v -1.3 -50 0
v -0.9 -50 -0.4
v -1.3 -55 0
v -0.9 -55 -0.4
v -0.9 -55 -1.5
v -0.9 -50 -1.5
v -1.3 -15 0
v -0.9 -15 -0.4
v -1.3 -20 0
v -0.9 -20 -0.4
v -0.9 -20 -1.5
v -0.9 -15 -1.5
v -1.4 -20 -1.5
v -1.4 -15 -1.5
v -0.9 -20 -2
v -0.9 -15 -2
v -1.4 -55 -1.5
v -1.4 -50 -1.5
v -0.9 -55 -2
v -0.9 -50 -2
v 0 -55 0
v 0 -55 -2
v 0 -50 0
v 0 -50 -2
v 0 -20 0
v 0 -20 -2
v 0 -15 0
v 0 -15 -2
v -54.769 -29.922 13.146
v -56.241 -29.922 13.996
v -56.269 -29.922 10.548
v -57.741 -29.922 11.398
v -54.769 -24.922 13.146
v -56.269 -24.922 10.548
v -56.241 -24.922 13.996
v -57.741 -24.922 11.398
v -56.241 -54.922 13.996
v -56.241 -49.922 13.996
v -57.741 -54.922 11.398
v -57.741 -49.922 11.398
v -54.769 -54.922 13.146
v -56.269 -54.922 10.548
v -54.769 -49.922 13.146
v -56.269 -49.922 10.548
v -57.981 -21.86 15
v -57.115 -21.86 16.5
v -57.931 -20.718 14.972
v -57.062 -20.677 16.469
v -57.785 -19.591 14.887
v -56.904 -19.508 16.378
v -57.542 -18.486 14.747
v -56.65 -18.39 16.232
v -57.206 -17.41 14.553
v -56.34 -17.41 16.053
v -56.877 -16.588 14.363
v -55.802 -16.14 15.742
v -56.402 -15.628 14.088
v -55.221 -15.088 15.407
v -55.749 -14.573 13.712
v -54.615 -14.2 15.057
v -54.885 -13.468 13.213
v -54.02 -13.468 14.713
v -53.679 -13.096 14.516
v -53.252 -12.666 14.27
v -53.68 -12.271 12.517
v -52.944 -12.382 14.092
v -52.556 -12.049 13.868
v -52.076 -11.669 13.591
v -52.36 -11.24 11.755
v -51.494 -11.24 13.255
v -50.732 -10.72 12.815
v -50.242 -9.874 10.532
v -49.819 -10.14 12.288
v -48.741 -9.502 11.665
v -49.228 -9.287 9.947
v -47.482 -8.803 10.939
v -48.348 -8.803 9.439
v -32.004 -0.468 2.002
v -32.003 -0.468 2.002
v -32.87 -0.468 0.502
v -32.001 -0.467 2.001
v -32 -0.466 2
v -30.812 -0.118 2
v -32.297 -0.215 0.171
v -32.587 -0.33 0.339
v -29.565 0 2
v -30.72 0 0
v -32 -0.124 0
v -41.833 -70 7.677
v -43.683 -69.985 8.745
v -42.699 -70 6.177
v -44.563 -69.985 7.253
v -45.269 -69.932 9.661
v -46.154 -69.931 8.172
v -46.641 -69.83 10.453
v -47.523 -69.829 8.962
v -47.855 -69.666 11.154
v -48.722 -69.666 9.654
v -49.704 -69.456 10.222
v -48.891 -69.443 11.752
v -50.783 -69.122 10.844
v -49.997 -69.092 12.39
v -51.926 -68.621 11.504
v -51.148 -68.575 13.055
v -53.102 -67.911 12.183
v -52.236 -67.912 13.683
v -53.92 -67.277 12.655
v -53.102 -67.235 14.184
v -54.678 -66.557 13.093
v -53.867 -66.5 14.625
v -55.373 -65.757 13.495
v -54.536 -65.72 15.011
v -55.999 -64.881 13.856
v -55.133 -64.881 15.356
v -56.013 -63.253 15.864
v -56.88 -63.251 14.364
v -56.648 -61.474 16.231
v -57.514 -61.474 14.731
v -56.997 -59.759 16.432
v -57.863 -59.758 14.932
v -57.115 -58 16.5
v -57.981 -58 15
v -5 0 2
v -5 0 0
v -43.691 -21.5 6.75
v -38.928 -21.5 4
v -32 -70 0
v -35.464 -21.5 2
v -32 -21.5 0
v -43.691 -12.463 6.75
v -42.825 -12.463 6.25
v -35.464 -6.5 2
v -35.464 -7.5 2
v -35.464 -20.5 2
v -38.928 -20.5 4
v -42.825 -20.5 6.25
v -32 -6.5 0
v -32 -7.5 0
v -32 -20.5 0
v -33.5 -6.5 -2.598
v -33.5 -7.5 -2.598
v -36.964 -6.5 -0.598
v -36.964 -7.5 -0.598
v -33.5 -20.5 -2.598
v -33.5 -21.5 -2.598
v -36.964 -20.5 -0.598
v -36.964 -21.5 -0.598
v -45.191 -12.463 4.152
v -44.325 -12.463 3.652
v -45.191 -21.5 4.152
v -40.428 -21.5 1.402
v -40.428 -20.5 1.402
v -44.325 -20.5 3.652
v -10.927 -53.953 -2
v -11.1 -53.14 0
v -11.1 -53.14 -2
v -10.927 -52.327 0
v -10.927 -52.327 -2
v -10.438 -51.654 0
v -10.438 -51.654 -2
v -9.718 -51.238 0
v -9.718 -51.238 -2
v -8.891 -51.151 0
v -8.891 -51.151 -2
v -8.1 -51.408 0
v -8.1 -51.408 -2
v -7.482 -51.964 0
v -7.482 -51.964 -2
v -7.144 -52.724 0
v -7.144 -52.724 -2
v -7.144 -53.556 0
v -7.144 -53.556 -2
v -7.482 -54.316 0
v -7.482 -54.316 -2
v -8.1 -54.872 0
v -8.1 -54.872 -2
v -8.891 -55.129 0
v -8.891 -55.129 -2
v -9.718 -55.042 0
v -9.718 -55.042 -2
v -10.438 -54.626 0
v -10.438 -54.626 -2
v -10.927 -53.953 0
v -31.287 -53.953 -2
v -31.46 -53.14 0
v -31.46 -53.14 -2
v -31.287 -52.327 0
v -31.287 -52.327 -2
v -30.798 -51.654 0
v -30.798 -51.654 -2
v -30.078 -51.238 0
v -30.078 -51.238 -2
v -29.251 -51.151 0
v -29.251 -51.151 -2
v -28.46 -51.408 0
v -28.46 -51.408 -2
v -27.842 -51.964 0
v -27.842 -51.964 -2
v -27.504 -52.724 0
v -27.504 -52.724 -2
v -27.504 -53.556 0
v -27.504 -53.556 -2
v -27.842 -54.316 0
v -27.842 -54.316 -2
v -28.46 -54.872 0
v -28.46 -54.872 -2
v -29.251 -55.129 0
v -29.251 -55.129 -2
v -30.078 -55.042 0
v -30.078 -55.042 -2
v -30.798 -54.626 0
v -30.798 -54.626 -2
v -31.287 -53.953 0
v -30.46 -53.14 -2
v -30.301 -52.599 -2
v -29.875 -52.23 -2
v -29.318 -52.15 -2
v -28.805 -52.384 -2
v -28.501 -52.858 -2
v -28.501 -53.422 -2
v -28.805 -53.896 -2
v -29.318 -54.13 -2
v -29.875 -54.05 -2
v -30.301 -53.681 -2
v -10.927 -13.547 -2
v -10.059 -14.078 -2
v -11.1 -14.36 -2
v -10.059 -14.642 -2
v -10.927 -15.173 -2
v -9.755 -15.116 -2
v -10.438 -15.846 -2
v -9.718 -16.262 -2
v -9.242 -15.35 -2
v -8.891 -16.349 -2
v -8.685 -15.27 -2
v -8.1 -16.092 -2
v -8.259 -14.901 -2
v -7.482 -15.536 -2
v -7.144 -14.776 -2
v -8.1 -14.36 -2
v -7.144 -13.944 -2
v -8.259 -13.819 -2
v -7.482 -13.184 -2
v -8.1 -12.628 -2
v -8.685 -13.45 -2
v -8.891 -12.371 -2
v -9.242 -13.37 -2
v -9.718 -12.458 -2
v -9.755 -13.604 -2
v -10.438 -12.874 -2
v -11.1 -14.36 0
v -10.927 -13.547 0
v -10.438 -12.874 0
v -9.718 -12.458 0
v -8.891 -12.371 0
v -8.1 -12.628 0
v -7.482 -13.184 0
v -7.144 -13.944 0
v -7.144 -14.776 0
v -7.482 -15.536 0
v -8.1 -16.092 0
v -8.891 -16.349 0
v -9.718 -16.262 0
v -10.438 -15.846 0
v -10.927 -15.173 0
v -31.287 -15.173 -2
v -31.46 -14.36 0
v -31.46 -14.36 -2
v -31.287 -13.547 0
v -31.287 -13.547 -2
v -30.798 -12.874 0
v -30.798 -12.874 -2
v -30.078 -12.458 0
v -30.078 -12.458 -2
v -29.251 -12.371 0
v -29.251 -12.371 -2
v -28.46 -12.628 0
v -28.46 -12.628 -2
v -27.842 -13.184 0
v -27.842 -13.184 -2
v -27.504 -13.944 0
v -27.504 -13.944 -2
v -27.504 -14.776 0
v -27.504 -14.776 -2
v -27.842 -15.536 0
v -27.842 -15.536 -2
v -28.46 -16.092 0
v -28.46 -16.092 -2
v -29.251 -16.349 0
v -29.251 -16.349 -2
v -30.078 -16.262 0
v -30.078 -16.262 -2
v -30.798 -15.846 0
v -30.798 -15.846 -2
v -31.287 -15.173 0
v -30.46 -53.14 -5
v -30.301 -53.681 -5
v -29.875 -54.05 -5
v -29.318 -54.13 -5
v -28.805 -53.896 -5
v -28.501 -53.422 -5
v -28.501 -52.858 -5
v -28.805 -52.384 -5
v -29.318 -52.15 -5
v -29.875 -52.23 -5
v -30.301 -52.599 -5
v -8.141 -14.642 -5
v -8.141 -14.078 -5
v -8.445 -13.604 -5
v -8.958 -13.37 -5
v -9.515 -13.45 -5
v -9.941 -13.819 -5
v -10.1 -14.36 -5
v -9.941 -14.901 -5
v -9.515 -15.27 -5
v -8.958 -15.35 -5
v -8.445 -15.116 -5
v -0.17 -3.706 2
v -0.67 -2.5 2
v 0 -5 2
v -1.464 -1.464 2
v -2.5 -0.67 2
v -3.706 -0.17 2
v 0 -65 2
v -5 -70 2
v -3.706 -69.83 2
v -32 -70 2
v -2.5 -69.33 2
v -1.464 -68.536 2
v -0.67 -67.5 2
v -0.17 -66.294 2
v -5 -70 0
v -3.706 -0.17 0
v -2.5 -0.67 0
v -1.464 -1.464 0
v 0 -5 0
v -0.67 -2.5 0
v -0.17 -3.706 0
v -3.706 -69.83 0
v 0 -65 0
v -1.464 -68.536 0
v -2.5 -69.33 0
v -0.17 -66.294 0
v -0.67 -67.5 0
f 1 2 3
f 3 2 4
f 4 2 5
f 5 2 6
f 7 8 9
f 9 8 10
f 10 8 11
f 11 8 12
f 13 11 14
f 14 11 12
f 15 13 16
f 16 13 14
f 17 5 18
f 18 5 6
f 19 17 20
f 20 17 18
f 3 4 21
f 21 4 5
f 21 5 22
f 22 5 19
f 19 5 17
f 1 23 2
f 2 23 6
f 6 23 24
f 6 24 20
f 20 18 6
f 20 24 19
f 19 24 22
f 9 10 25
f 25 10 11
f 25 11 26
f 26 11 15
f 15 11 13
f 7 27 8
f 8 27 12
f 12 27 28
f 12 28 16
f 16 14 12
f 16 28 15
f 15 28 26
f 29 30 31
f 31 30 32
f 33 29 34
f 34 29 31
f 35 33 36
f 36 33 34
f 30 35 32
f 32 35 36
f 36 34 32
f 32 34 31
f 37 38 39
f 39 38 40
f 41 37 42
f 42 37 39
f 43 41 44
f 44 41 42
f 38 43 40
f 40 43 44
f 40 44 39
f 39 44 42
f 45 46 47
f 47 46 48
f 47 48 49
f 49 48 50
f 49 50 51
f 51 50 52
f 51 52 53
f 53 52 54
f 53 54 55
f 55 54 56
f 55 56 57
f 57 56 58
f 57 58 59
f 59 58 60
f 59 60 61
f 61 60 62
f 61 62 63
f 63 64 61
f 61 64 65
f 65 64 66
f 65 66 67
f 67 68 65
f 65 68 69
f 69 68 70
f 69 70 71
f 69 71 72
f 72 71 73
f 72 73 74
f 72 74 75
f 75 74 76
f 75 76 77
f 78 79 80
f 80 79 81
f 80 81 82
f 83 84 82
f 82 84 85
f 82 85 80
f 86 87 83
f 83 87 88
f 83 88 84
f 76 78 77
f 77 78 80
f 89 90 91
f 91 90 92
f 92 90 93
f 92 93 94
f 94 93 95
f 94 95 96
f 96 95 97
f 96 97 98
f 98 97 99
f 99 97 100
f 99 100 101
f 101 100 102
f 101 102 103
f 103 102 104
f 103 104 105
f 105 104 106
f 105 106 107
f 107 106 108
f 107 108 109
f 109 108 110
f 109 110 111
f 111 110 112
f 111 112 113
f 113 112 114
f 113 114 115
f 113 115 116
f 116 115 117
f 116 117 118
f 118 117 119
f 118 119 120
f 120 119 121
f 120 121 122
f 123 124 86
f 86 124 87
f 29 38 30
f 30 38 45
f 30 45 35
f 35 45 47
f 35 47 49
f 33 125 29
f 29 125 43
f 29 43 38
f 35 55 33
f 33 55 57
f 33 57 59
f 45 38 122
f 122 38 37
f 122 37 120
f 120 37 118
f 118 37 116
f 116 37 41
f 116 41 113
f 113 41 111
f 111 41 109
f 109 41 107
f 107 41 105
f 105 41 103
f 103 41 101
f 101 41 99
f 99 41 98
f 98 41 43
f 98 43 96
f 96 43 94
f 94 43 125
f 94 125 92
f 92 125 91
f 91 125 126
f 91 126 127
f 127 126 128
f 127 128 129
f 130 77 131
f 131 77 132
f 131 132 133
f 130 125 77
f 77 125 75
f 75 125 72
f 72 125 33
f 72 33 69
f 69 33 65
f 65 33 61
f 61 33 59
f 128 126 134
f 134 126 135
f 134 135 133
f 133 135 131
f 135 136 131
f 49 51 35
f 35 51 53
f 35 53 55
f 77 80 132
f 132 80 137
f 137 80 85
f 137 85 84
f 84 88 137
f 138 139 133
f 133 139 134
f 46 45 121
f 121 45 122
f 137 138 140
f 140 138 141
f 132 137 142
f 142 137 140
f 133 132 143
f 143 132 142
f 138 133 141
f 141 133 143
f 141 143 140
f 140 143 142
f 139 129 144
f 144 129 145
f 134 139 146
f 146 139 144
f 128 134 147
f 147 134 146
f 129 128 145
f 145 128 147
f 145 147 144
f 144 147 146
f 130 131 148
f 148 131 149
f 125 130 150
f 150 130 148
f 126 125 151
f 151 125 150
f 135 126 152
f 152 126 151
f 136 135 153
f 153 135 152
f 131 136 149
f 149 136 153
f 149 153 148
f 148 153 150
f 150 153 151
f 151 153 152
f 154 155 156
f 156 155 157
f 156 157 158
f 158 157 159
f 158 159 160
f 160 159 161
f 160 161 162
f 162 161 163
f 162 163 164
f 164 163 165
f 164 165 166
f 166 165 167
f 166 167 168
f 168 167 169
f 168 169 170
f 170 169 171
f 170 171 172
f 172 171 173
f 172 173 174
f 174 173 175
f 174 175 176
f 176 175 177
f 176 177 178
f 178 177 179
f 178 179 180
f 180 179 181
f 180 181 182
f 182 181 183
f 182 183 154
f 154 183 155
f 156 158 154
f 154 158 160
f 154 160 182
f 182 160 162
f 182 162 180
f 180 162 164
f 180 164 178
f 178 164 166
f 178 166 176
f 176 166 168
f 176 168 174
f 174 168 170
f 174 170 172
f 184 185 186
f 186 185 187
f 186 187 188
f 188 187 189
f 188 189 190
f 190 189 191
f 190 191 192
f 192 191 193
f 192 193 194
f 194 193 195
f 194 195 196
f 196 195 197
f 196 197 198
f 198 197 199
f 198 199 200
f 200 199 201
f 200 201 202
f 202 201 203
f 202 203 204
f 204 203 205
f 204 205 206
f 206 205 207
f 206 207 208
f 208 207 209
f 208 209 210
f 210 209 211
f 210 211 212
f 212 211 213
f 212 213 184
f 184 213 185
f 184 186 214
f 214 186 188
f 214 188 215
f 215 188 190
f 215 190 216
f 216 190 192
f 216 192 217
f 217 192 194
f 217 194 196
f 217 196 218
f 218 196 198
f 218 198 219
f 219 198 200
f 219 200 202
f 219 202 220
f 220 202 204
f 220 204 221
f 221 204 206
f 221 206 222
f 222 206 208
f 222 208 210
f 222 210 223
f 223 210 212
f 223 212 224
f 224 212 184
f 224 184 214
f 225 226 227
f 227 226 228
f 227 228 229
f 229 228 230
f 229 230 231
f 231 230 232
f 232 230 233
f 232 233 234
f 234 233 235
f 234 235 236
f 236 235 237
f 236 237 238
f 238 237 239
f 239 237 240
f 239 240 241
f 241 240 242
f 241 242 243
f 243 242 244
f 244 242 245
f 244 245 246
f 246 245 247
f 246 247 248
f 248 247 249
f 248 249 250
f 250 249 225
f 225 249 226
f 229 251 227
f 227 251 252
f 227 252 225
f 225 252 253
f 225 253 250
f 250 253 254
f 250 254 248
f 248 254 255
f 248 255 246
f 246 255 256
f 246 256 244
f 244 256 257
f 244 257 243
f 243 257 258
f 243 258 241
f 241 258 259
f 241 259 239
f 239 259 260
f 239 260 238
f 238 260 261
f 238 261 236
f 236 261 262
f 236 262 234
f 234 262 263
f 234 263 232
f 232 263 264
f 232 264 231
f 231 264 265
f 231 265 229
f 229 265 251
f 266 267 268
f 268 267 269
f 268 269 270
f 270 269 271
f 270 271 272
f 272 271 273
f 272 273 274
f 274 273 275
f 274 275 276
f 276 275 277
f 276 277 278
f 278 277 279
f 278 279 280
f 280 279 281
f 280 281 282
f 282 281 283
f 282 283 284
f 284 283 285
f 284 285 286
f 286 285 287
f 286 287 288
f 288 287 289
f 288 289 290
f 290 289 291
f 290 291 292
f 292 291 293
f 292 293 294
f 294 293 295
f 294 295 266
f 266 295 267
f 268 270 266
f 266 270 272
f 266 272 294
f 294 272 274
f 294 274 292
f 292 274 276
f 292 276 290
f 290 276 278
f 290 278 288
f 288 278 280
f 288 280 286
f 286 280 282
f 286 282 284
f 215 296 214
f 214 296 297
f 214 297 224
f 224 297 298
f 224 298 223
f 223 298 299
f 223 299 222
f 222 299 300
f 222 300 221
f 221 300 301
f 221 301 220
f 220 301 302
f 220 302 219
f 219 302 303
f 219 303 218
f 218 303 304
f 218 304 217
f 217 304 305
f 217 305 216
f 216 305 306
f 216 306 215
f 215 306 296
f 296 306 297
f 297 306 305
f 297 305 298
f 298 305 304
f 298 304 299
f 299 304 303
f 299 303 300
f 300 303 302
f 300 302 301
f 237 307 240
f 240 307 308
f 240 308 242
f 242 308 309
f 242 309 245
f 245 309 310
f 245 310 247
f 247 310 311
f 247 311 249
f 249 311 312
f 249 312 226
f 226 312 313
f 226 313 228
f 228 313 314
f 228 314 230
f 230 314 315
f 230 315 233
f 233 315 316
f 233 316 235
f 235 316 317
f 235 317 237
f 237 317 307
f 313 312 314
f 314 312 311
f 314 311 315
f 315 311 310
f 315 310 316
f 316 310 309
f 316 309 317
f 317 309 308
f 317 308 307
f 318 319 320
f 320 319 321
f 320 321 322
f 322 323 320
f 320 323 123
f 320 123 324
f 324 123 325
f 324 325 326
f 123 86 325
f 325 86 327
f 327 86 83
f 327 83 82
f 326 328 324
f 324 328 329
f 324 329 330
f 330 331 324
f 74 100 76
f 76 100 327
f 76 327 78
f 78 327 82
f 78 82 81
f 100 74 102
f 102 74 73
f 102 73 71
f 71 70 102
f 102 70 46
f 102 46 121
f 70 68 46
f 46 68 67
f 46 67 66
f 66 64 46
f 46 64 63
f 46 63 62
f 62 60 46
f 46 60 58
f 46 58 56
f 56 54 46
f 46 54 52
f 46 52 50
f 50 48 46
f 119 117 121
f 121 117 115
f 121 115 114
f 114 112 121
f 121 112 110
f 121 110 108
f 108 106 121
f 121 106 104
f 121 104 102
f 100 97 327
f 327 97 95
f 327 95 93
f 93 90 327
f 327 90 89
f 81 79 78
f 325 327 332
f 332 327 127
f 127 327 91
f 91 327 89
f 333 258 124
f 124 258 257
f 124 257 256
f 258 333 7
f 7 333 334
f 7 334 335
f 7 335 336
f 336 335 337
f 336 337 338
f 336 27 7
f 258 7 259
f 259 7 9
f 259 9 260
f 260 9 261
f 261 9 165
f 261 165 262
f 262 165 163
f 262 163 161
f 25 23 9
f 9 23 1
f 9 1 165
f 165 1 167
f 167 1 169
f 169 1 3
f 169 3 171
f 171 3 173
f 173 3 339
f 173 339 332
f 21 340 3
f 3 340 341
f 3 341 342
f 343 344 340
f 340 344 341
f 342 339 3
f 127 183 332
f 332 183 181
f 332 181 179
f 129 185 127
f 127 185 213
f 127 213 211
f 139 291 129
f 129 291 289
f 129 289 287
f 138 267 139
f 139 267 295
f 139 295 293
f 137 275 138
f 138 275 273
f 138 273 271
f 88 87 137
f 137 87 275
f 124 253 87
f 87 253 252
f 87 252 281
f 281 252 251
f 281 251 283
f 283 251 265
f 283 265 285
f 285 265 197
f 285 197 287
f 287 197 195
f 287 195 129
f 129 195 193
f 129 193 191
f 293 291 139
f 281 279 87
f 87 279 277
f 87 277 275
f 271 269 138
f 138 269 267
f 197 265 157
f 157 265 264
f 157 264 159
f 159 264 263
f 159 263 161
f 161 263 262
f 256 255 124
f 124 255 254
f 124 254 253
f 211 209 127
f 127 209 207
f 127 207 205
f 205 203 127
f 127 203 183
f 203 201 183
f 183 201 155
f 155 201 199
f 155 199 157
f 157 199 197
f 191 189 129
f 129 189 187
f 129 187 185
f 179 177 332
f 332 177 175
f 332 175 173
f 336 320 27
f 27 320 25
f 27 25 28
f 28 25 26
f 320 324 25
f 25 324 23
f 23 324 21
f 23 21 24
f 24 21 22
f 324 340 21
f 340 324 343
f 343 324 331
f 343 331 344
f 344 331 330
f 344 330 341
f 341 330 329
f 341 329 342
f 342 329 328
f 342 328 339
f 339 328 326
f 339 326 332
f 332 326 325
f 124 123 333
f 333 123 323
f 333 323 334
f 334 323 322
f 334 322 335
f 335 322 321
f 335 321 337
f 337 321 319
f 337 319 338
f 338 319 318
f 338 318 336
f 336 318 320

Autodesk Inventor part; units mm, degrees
ref_plane "YZ Plane" through (0, 0, 0) normal (1, 0, 0) x (0, 1, 0)
ref_plane "XZ Plane" through (0, 0, 0) normal (0, 1, 0) x (-1, 0, 0)
ref_plane "XY Plane" through (0, 0, 0) normal (0, 0, 1) x (1, 0, 0)
sketch "スケッチ1" plane through (0, 0, 0) normal (0, 0, 1) x (1, 0, 0)
  line L0 (0, 0) -> (-32, 0)
  line L1 (-32, 0) -> (-32, -70)
  line L2 (-32, -70) -> (0, -70)
  line L3 (0, -70) -> (0, 0)
  dimension "d0" = 32
  dimension "d1" = 70
extrude "押し出し1" add sketch "スケッチ1" along normal blind 2
sketch "スケッチ2" plane through (-32, -70, 0) normal (0, -1, 0) x (1, 0, 0)
  line L0 (0, 0) -> (32, 0) projected
  line L1 (32, 0) -> (32, 2) projected
  line L2 (0, 2) -> (32, 2) projected
  line L3 (0, 0) -> (0, 2) projected
  line L4 (0, 0) -> (-25.9808, 15)
  line L5 (-25.9808, 15) -> (-25.1147, 16.5)
  line L6 (-25.1147, 16.5) -> (0, 2)
  point P0 (32, 0)
  dimension "d4" = 30
  dimension "d5" = 150
extrude "押し出し2" add sketch "スケッチ2" against normal blind 70 contours L4 L5 L6 L3
sketch "スケッチ3" plane through (0, 0, 0) normal (0, 0, -1) x (-1, 0, 0)
  line L0 (0, 0) -> (32, 0) projected
  line L1 (32, 0) -> (57.9808, -12.115)
  line L2 (32, 0) -> (57.9808, 0) projected
  line L3 (57.9808, -70) -> (57.9808, 0) projected
  dimension "d8" = 25
extrude "押し出し3" cut sketch "スケッチ3" against normal blind 70
sketch "スケッチ4" plane through (0, 0, 0) normal (0, 0, -1) x (-1, 0, 0)
  circle A0 centre (9.1, -14.36) radius 1.15 projected
  circle A1 centre (29.46, -53.14) radius 1.15 projected
  circle A2 centre (9.1, -14.36) radius 1
  circle A3 centre (29.46, -53.14) radius 1
  point P0 (0, 0)
  dimension "d11" = 2
  dimension "d12" = 2
extrude "押し出し4" add sketch "スケッチ4" along normal blind 5 contours A2 | A3
sketch "スケッチ5" plane through (0, 0, 0) normal (0, 0, -1) x (-1, 0, 0)
  circle A0 centre (9.1, -14.36) radius 1 projected
  circle A1 centre (29.46, -53.14) radius 1 projected
  circle A2 centre (9.1, -14.36) radius 2
  circle A3 centre (29.46, -53.14) radius 2
  line L0 (9.1, -14.36) -> (29.46, -14.36)
  line L1 (29.46, -14.36) -> (29.46, -53.14)
  line L2 (29.46, -53.14) -> (9.1, -53.14)
  line L3 (9.1, -53.14) -> (9.1, -14.36)
  circle A4 centre (29.46, -14.36) radius 2
  circle A5 centre (9.1, -53.14) radius 2
  point P0 (0, 0)
  dimension "d15" = 4
  dimension "d16" = 4
  dimension "d17" = 4
  dimension "d18" = 4
extrude "押し出し5" add sketch "スケッチ5" along normal blind 2 contours L0 L3 A0 | L0 A2 L3 A0 | A0 L3 L0 | A0 L3 A2 L0 | A4 L1 L0 | L0 L1 A4 | A5 L2 L3 | L3 L2 A5 | L1 A1 L2 A3 | A3 L2 A1 L1
sketch "スケッチ6" plane through (-32, -70, 0) normal (-0.5, 0, -0.866) x (-0.866, 0, 0.5)
  circle A0 centre (6, 56) radius 4 projected
  line L0 (12, 62) -> (0, 62) projected
  line L1 (0, 62) -> (0, 50) projected
  line L2 (0, 50) -> (12, 50) projected
  line L3 (12, 50) -> (12, 62) projected
  line L4 (12.5, 62.5) -> (-0.5, 62.5)
  line L5 (-0.5, 62.5) -> (-0.5, 49.5)
  line L6 (-0.5, 49.5) -> (12.5, 49.5)
  line L7 (12.5, 49.5) -> (12.5, 62.5)
  line L8 (13.5, 63.5) -> (-1.5, 63.5)
  line L9 (-1.5, 63.5) -> (-1.5, 48.5)
  line L10 (-1.5, 48.5) -> (13.5, 48.5)
  line L11 (13.5, 48.5) -> (13.5, 63.5)
  line L12 (4, 48.5) -> (8, 48.5)
  line L13 (8, 48.5) -> (8, 49.5)
  line L14 (8, 49.5) -> (4, 49.5)
  line L15 (4, 49.5) -> (4, 48.5)
  line L16 (4, 62.5) -> (8, 62.5)
  line L17 (8, 62.5) -> (8, 63.5)
  line L18 (8, 63.5) -> (4, 63.5)
  line L19 (4, 63.5) -> (4, 62.5)
  line L20 (6, 48.5) -> (6, 63.5)
  line L21 (0, 70) -> (0, 0) projected
  line L22 (0, 48.5) -> (0, 63.5)
  line L23 (12.5, 57.5369) -> (13.5, 57.5369)
  point P0 (-27.7128, 70)
  point P1 (0, 62.5)
  point P2 (0, 49.5)
  point P3 (4, 49.5)
  dimension "d21" = 0.5
  dimension "d22" = 1
  dimension "d23" = 4
  dimension "d24" = 7.5
  dimension "d25" = 2
extrude "押し出し6" add sketch "スケッチ6" along normal blind 3 contours L21 L8 L19 L4 | L6 L15 L10 L21 | L6 L7 L23 L11 L10 L13
sketch "スケッチ9" plane through (-57.9808, -70, 15) normal (-0.5, 0, -0.866) x (-0.866, 0, 0.5)
  line L0 (-57.7128, 70) -> (-30, 70) projected
  spline S0 degree 3 poles (-17.6456, 0) (-14.5389, 0) (-12.4319, 0.0723) (-9.2674, 0.5484) (-7.4551, 0.9854) (-4.3314, 2.8768) (-3.1964, 3.9013) (-1.5196, 6.1498) (-0.9279, 7.3003) (-0.1818, 9.6493) (0, 10.8209) (0, 12) knots 0 0 0 0 0.932002 0.932002 1.694801 1.694801 2.239825 2.239825 2.701159 2.701159 3.124298 3.124298 3.124298 3.124298 projected
  spline S1 degree 3 poles (0, 48.1402) (0, 49.6683) (-0.3054, 51.1785) (-1.3061, 53.5747) (-2.0656, 55.0439) (-4.46, 57.4051) (-5.4298, 58.109) (-8.0471, 59.7175) (-9.9104, 60.6321) (-11.1228, 61.1974) knots 0 0 0 0 0.458444 0.458444 0.77844 0.77844 0.966355 0.966355 1.242442 1.242442 1.242442 1.242442 projected
  line L1 (-11.1228, 61.1974) -> (-28.9954, 69.5315) projected
  line L2 (-11.1228, 61.1974) -> (-28.9954, 69.5315) projected
  arc A0 (-28.9954, 69.5315) -> (-31.1085, 70) centre (-31.1085, 65) ccw projected
  line L3 (0, 57.885) -> (-30, 70) projected
  line L4 (0, 0) -> (0, 57.885) projected
  line L5 (0, 0) -> (-30, 0) projected
  line L6 (0, 57.885) -> (0, 70)
  line L7 (0, 70) -> (-31.1085, 70)
  point P0 (-53.3827, 70)
  point P1 (-30, 70)
extrude "押し出し9" cut sketch "スケッチ9" against normal blind 70
sketch "スケッチ10" plane through (-32, -70, 0) normal (-0.5, 0, -0.866) x (-0.866, 0, 0.5)
  spline S0 degree 3 poles (12.3544, 2) (14.3729, 2) (16.0097, 2.0362) (19.2589, 2.3162) (21.0143, 2.657) (23.8072, 4.1137) (24.8109, 4.9066) (26.4147, 6.7969) (27.0131, 7.8518) (27.7245, 9.9614) (27.8914, 10.977) (27.8914, 11.9999) knots 0 0 0 0 0.605548 0.605548 1.419175 1.419175 1.976207 1.976207 2.502247 2.502247 2.949437 2.949437 2.949437 2.949437 projected
  spline S1 degree 3 poles (27.8914, 48.1552) (27.8914, 49.4139) (27.6391, 50.6569) (26.7879, 52.6951) (26.1446, 53.898) (24.1844, 55.8315) (23.3911, 56.4221) (21.0683, 57.9103) (19.2685, 58.8082) (18.0319, 59.3848) knots 0 0 0 0 0.377607 0.377607 0.661941 0.661941 0.825328 0.825328 1.114005 1.114005 1.114005 1.114005 projected
  line L0 (27.8981, 15.078) -> (26.2914, 15.078)
  line L1 (26.2914, 15.078) -> (26.2914, 20.078)
  line L2 (26.2914, 20.078) -> (27.8981, 20.078)
  line L3 (27.8981, 20.078) -> (27.8981, 15.078)
  line L4 (27.8981, 15.078) -> (27.9914, 15.078)
  line L5 (27.9914, 15.078) -> (27.9914, 20.078)
  line L6 (27.9914, 20.078) -> (27.8981, 20.078)
  line L7 (27.8981, 20.078) -> (27.8981, 15.078)
  spline S2 degree 3 poles (12.3544, 2) (14.3729, 2) (16.0097, 2.0362) (19.2589, 2.3162) (21.0143, 2.657) (23.8072, 4.1137) (24.8109, 4.9066) (26.4147, 6.7969) (27.0131, 7.8518) (27.7245, 9.9614) (27.8914, 10.977) (27.8914, 11.9999) knots 0 0 0 0 0.605548 0.605548 1.419175 1.419175 1.976207 1.976207 2.502247 2.502247 2.949437 2.949437 2.949437 2.949437 projected
  spline S3 degree 3 poles (27.8914, 48.1552) (27.8914, 49.4139) (27.6391, 50.6569) (26.7879, 52.6951) (26.1446, 53.898) (24.1844, 55.8315) (23.3911, 56.4221) (21.0683, 57.9103) (19.2685, 58.8082) (18.0319, 59.3848) knots 0 0 0 0 0.377607 0.377607 0.661941 0.661941 0.825328 0.825328 1.114005 1.114005 1.114005 1.114005 projected
  line L8 (30, 12) -> (30, 48.1402) projected
  line L9 (27.9457, 30.078) -> (29.9457, 30.078)
  line L10 (27.8981, 45.078) -> (26.2914, 45.078)
  line L11 (26.2914, 45.078) -> (26.2914, 40.078)
  line L12 (26.2914, 40.078) -> (27.8981, 40.078)
  line L13 (27.8981, 40.078) -> (27.8981, 45.078)
  line L14 (27.8981, 45.078) -> (27.9914, 45.078)
  line L15 (27.9914, 45.078) -> (27.9914, 40.078)
  line L16 (27.9914, 40.078) -> (27.8981, 40.078)
  line L17 (27.8981, 40.078) -> (27.8981, 45.078)
  line L18 (27.8914, 22.078) -> (27.8914, 38.078) projected
  point P0 (-27.7128, 70)
  point P1 (30, 48.1402)
  point P2 (28.9457, 30.078)
  point P3 (27.0948, 15.078)
  point P4 (27.0948, 45.078)
  point P5 (27.8981, 40.078)
  dimension "d34" = 5
  dimension "d38" = 5
  dimension "d55" = 15
  dimension "d58" = 0.1
  dimension "d59" = 1.6
  dimension "d60" = 8
  dimension "d61" = 2
extrude "押し出し10" add sketch "スケッチ10" along normal blind 3
sketch "スケッチ11" plane through (0, 0, 0) normal (0, 0, -1) x (-1, 0, 0)
  line L0 (0, 0) -> (0, -64.8508)
  line L1 (0, -20) -> (0.9, -20)
  line L2 (0.9, -20) -> (0.9, -15)
  line L3 (0.9, -15) -> (0, -15)
  line L4 (0, -15) -> (0, -20)
  line L5 (0, -35) -> (4.5878, -35)
  line L6 (0, -50) -> (0.9, -50)
  line L7 (0.9, -50) -> (0.9, -55)
  line L8 (0.9, -55) -> (0, -55)
  line L9 (0, -55) -> (0, -50)
  line L10 (0, 0) -> (29.5653, 0) projected
  line L11 (0, -70) -> (0, 0) projected
  point P0 (0, -50)
  point P1 (0, -55)
  point P2 (0, -15)
  dimension "d41" = 5
  dimension "d42" = 15
  dimension "d43" = 0.9
  dimension "d62" = 35
extrude "押し出し11" add sketch "スケッチ11" along normal blind 2
sketch "スケッチ12" plane through (-0.9, -55, 0) normal (0, -1, 0) x (1, 0, 0)
  line L0 (0, 0) -> (0.9, 0) projected
  line L1 (0, 0) -> (0, -2) projected
  line L2 (0.9, -2) -> (0, -2) projected
  line L3 (0.9, 0) -> (0.9, -2) projected
  line L4 (0, -2) -> (-0.5, -2)
  line L5 (-0.5, -2) -> (-0.5, -1.5)
  line L6 (-0.5, -1.5) -> (0, -1.5)
  line L7 (0, -1.5) -> (0, -2)
  line L8 (0, -2) -> (-0.5, -1.5)
  point P0 (0.9, 0)
  point P1 (0, -1.5)
  dimension "d46" = 0.5
  dimension "d47" = 0.5
extrude "押し出し12" add sketch "スケッチ12" against normal blind 5 contours L1 L8 L6
sketch "スケッチ13" plane through (-0.9, -20, 0) normal (0, -1, 0) x (1, 0, 0)
  line L0 (0, 0) -> (0.9, 0) projected
  line L1 (0, 0) -> (0, -1.5) projected
  line L2 (0, -1.5) -> (-0.5, -1.5) projected
  line L3 (-0.5, -1.5) -> (0, -2) projected
  line L4 (0.9, -2) -> (0, -2) projected
  line L5 (0.9, 0) -> (0.9, -2) projected
  line L6 (0, -2) -> (0, -1.5)
  point P0 (0.9, 0)
extrude "押し出し13" add sketch "スケッチ13" against normal blind 5 contours L6 L3 L2
chamfer "面取り1" distance 0.4 angle 45 2 edges at (-0.9, -17.5, 0) (-0.9, -52.5, 0)
fillet "フィレット1" radius 5 2 edges at (0, -70, 1) (0, 0, 1)
properties part number "case"
